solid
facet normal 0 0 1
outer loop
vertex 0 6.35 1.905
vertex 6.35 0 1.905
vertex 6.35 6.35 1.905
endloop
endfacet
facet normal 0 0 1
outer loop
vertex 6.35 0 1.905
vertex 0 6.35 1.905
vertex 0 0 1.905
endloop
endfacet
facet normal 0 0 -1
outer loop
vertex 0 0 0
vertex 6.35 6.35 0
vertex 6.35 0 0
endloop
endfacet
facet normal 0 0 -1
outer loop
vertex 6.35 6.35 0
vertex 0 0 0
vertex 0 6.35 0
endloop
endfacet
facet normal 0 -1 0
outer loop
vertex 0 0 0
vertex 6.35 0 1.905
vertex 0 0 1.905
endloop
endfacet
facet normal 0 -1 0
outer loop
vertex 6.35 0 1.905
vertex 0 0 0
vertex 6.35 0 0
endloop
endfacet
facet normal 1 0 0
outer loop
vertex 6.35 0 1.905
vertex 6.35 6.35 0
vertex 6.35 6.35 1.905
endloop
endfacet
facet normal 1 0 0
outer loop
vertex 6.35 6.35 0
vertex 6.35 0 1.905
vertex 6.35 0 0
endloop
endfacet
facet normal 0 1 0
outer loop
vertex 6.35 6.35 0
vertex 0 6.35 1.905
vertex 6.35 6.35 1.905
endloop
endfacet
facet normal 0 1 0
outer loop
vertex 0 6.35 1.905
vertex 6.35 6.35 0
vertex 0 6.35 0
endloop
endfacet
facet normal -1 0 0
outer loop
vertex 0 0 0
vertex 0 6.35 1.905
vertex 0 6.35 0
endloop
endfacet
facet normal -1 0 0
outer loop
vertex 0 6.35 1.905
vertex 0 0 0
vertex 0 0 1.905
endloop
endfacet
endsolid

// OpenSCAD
/* Warning, this is a very basic generator with a lot of approximation 
input data : [CLCC, F6C, .250x.250x.075In., 16, , A, C04-25637A]
generated by com.zoubworld.electronics.cad.model3d.Basic
Date : Sun Feb 15 10:50:49 CET 2026
*/

//body
color("black")
translate([0,0,0])
cube([6.35,6.35,1.9049999999999998], center=false);
